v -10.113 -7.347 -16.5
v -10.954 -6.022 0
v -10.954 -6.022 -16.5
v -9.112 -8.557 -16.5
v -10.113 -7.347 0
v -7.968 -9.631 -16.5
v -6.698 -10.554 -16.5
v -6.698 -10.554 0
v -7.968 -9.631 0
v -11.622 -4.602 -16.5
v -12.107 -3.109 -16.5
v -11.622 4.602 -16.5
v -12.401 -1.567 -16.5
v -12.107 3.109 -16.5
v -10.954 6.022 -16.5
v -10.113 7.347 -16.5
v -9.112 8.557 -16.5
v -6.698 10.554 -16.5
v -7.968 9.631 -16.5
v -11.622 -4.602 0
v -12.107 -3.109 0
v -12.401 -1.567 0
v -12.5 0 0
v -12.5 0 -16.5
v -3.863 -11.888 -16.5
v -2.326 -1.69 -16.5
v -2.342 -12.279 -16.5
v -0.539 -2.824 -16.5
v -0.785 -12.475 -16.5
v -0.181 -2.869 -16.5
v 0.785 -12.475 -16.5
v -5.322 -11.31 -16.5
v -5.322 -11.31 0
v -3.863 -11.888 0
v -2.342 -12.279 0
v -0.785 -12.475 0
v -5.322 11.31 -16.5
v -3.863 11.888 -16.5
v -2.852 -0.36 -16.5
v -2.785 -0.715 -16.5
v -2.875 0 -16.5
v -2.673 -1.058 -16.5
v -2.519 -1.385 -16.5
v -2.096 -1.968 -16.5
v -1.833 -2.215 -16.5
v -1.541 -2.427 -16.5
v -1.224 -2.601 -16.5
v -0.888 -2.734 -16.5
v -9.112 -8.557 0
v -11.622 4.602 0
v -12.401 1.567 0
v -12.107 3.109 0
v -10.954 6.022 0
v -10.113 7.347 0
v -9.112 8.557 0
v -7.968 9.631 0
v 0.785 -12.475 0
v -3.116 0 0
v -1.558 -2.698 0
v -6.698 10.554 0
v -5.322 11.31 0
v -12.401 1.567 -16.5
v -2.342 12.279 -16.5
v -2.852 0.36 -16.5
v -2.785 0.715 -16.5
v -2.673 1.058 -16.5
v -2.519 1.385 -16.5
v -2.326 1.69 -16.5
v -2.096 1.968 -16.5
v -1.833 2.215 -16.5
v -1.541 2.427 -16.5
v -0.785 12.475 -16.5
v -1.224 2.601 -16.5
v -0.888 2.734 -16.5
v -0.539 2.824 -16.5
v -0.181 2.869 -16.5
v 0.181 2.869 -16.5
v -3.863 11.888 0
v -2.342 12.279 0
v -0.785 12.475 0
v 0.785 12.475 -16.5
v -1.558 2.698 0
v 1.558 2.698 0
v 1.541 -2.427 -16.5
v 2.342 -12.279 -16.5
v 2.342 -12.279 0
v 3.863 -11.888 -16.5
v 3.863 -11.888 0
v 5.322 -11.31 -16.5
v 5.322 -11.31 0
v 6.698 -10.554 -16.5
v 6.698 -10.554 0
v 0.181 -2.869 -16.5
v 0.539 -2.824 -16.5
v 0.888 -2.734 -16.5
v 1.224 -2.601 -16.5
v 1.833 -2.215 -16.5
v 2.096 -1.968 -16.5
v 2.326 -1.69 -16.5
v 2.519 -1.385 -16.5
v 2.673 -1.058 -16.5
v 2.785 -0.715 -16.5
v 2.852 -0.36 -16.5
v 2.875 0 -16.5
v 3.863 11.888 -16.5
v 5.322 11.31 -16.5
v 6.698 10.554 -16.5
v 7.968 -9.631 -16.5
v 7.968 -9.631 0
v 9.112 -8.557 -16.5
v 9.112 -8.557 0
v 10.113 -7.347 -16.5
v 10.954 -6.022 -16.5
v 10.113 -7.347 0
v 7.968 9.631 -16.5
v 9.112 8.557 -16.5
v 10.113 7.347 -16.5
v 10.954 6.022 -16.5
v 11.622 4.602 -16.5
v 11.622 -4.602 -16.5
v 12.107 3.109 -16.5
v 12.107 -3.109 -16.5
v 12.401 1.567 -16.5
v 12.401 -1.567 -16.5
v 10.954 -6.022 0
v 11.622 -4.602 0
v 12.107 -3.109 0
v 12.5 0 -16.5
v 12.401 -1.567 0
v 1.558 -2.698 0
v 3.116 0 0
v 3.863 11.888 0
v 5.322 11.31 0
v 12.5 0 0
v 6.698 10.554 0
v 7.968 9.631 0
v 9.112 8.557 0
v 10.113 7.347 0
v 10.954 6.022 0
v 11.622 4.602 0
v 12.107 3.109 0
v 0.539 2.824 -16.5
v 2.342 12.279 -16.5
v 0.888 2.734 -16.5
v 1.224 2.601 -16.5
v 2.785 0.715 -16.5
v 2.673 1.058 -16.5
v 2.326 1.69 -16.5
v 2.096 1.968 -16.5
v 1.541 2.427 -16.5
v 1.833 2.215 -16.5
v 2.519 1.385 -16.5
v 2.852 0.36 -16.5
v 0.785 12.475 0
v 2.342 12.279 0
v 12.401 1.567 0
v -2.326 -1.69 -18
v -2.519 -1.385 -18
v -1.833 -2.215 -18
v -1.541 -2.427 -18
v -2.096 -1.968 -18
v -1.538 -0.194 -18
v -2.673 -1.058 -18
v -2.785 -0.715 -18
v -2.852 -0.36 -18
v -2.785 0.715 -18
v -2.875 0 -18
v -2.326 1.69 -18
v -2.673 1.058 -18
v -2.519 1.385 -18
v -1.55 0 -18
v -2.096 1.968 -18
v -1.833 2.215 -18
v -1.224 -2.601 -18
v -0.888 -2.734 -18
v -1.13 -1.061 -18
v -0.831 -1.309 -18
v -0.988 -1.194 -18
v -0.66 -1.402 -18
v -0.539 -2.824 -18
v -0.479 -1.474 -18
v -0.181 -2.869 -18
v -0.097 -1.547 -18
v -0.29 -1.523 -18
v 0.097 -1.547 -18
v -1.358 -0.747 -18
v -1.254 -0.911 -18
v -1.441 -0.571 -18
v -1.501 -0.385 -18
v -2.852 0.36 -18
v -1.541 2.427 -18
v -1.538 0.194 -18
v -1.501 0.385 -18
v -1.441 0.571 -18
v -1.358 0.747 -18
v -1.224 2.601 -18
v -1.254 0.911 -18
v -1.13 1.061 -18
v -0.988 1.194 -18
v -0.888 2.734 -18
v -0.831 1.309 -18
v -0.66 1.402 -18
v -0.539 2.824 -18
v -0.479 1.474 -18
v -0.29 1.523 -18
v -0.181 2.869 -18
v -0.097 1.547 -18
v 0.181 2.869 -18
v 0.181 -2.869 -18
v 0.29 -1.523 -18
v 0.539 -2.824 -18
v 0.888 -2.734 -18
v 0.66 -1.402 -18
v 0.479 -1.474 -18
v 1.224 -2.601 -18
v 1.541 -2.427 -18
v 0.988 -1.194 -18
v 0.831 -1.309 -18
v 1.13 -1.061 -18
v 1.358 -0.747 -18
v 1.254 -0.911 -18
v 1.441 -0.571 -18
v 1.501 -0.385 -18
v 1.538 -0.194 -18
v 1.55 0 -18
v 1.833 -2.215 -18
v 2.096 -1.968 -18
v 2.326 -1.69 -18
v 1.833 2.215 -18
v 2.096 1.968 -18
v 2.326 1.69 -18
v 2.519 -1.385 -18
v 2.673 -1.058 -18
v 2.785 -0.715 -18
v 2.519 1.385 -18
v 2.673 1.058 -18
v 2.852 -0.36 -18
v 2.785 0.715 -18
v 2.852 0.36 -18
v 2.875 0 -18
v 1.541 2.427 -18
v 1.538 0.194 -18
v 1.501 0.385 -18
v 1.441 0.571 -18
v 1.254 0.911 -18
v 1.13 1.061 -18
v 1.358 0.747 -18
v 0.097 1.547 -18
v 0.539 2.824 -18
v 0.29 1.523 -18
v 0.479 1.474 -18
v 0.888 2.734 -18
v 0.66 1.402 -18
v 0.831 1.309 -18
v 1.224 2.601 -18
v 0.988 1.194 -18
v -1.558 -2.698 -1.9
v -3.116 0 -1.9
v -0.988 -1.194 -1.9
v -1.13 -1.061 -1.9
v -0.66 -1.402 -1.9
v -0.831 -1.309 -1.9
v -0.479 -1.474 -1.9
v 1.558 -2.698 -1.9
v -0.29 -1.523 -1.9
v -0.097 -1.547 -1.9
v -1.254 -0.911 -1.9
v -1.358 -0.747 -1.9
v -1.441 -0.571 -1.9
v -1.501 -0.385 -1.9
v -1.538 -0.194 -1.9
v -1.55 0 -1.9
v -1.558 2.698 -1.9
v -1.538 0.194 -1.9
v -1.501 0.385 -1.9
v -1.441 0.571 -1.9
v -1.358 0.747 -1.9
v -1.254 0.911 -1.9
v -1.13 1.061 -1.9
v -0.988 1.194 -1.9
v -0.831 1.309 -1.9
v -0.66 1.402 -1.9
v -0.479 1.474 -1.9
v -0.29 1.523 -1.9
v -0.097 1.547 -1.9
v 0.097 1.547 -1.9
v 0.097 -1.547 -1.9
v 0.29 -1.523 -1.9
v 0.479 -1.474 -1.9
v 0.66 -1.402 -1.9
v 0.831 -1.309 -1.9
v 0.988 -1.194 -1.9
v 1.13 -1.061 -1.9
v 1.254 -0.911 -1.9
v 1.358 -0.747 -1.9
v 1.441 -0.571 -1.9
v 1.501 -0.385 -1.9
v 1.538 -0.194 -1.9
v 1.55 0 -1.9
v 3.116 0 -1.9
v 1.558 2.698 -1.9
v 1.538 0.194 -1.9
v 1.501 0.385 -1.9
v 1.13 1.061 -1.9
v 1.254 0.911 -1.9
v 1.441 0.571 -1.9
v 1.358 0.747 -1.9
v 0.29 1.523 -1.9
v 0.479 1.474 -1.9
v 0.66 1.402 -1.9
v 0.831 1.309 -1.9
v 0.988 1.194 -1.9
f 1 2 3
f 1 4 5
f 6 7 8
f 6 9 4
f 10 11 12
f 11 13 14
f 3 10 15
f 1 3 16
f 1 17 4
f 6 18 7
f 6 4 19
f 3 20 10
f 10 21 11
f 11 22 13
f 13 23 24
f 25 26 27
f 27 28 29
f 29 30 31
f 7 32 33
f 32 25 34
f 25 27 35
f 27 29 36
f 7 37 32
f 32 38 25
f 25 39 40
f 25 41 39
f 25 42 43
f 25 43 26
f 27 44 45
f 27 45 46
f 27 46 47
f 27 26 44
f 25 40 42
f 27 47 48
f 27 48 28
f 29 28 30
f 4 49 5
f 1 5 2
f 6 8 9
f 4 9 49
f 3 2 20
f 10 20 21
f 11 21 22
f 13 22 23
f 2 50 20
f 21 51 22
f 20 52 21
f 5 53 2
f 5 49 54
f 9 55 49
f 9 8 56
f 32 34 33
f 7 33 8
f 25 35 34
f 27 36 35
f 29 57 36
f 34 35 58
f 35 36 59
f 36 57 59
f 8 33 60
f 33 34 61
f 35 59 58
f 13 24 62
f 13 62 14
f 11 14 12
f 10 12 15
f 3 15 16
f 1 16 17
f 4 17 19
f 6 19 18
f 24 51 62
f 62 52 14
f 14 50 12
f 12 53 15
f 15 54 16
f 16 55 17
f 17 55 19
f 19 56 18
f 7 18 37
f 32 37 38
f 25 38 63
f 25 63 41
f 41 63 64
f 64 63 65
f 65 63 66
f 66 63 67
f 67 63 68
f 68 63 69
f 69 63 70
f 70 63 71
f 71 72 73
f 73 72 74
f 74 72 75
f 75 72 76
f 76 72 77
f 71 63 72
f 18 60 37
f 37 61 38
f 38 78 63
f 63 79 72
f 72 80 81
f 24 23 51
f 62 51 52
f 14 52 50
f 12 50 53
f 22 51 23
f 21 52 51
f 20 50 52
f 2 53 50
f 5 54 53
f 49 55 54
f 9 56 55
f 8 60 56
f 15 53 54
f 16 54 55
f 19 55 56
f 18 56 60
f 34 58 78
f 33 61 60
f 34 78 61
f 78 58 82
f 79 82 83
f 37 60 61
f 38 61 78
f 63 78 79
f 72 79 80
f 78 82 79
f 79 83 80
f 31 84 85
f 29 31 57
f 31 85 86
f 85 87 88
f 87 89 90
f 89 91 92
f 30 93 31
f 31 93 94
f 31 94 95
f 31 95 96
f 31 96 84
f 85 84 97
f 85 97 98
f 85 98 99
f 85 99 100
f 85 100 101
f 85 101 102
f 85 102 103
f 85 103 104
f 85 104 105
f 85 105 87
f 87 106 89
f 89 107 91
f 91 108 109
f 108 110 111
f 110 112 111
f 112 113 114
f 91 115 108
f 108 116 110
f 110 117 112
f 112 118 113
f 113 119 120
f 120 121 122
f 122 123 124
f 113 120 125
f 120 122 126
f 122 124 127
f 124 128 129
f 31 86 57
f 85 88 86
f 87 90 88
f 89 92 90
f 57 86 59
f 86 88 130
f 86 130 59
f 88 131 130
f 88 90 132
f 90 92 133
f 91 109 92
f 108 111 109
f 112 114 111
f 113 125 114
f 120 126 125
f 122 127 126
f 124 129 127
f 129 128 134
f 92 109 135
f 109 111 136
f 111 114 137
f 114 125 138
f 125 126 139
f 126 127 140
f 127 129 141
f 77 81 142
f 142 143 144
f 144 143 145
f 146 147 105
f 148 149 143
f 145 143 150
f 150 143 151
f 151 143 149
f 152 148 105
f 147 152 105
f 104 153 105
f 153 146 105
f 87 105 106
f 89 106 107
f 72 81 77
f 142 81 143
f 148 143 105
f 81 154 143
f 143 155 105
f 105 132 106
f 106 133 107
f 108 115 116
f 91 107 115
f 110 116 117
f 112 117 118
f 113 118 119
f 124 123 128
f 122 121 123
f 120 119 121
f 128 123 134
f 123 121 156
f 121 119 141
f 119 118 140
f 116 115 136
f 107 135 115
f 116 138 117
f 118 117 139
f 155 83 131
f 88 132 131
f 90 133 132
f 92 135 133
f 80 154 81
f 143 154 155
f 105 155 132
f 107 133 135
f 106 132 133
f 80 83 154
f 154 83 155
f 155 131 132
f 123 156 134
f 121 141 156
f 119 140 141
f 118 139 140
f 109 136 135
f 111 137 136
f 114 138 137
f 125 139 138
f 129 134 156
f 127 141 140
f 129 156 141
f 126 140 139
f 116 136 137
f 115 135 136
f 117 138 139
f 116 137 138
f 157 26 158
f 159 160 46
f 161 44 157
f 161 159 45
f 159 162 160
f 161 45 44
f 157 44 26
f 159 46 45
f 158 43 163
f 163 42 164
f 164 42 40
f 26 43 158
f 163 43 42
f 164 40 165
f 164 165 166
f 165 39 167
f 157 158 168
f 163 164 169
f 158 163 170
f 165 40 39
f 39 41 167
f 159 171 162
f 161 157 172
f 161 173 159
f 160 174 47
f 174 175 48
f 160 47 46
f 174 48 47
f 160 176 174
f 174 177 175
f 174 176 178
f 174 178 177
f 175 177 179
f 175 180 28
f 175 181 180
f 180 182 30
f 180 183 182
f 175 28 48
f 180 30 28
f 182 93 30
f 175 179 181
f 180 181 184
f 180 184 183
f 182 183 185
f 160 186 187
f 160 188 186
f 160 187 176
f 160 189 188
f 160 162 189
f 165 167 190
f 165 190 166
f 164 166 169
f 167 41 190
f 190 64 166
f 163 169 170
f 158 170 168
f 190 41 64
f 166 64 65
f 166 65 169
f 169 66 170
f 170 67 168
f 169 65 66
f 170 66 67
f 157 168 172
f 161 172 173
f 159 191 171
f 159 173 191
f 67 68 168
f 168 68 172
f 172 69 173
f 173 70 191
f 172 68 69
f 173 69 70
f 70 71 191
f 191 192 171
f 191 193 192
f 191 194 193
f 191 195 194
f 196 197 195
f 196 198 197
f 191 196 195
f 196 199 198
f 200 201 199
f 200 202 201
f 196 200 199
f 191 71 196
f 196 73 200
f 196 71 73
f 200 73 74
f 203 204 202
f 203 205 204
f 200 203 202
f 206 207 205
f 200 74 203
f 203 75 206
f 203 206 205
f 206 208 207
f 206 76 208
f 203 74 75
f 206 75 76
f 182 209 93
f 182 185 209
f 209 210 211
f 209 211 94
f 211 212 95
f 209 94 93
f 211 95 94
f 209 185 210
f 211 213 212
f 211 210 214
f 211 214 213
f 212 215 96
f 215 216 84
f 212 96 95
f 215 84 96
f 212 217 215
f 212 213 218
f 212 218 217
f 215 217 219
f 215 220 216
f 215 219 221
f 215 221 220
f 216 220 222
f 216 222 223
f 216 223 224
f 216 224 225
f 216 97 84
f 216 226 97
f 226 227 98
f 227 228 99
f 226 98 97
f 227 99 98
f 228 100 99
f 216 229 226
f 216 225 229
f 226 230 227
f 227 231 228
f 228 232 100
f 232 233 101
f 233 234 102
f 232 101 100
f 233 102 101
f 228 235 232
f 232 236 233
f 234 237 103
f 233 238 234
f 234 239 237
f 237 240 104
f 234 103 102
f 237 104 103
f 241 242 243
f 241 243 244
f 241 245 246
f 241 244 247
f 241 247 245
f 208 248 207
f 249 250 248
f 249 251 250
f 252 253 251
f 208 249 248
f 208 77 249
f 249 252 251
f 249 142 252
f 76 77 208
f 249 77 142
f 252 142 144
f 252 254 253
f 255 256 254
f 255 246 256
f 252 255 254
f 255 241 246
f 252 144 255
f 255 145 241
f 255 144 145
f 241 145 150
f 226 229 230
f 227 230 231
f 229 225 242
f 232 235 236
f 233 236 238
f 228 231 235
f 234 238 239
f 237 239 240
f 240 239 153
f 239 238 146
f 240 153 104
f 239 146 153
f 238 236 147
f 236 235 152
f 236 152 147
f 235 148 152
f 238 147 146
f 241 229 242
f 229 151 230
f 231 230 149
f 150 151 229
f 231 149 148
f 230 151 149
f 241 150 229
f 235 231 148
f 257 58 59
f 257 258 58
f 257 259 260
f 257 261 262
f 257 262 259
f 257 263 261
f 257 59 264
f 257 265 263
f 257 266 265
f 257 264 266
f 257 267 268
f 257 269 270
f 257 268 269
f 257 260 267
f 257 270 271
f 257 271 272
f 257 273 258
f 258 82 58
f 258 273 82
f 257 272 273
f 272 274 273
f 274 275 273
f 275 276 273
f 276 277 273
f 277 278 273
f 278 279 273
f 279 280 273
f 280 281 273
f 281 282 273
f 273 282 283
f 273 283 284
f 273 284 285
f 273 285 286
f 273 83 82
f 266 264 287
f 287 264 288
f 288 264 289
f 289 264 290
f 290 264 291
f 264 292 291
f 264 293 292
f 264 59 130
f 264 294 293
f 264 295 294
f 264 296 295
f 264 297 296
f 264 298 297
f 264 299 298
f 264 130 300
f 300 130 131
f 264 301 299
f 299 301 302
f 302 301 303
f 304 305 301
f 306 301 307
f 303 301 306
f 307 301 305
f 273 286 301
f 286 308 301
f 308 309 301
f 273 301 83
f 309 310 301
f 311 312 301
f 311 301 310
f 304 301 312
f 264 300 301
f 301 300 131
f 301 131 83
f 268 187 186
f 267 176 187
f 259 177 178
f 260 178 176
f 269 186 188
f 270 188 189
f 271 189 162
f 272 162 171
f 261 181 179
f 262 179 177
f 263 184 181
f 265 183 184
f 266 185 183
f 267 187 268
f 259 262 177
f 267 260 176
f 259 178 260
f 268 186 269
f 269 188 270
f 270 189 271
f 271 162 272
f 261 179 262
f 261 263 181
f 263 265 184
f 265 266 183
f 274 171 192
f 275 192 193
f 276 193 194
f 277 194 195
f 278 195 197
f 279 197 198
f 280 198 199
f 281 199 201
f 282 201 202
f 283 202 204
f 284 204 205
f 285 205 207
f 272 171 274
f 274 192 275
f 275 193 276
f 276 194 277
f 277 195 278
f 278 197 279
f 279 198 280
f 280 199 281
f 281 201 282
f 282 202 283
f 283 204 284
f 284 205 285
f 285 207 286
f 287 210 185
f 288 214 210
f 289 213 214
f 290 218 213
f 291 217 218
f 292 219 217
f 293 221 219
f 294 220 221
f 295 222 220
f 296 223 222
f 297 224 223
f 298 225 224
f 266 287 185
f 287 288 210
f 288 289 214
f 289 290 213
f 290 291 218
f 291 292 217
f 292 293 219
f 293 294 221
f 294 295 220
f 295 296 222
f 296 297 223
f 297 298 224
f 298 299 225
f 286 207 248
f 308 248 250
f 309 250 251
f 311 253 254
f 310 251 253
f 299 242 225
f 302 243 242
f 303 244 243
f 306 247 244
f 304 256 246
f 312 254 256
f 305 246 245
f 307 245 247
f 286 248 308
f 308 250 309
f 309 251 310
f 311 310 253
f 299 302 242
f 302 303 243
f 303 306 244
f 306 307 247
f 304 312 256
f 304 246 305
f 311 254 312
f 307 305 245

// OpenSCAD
$fn = 50;

difference() {
	union() {
		translate(v = [0, 0, -16.5]) {
			cylinder(h = 16.5, r = 12.5);
		}
		#translate(v = [0, 0, -18.0]) {
			cylinder(h = 18, r = 2.875);
		}
	}
	union() {
		translate(v = [0, 0, 0]) {
			rotate(a = [0, 0, 0]) {
				difference() {
					union() {
						translate(v = [0, 0, -1.9]) {
							linear_extrude(height = 1.9) {
								polygon(points = [[3.1158, 0.0], [1.5579000000000005, 2.698361953111554], [-1.5578999999999994, 2.6983619531115544], [-3.1158, 3.815754496783323e-16], [-1.5579000000000014, -2.6983619531115535], [1.557899999999998, -2.6983619531115552]]);
							}
						}
					}
					union();
				}
			}
		}
		#translate(v = [0, 0, -100.0]) {
			cylinder(h = 200, r = 1.55);
		}
	}
}
